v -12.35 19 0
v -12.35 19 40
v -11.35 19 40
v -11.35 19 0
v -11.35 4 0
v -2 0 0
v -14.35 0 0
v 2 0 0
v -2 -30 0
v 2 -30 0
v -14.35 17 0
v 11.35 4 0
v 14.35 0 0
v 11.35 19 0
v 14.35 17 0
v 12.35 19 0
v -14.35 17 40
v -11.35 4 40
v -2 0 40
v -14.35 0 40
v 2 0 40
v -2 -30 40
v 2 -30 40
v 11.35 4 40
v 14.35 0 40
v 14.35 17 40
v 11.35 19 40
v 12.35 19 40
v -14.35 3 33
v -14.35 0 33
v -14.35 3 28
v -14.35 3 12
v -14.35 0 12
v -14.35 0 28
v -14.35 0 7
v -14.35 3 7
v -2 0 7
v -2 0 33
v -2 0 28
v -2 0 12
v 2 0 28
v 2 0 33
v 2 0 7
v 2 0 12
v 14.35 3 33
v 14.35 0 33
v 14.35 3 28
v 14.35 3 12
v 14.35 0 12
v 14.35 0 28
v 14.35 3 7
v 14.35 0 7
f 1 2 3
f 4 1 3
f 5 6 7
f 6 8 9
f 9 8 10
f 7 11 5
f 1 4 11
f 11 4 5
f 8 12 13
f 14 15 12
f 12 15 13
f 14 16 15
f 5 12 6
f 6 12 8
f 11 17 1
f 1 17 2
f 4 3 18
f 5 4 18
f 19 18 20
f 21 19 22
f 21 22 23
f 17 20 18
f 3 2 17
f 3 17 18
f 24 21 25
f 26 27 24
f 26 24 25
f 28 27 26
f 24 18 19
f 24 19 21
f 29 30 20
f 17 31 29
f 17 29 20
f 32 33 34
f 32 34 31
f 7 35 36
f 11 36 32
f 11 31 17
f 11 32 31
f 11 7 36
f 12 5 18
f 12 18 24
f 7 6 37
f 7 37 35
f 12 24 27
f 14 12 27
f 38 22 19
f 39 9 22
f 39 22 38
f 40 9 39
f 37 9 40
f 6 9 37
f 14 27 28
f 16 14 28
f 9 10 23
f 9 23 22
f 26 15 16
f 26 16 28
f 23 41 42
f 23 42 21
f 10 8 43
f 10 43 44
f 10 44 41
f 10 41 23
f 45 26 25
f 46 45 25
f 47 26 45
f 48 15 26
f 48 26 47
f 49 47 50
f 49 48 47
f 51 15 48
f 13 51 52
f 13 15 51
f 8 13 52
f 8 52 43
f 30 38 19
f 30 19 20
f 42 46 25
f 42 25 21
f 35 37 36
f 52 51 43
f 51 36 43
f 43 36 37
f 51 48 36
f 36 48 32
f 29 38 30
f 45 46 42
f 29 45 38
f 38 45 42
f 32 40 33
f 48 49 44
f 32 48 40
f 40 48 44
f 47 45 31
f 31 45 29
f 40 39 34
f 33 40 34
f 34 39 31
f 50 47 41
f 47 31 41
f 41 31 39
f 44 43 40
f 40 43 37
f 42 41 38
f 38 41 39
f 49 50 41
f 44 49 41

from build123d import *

# Parameters (mm, degrees)
PAD_DEPTH    = 40
SKETCH001_W  = 3
SKETCH001_H  = 5
POCKET_DEPTH = 28.701
CHAMFER_SIZE = 2


with BuildPart() as part:
    # Sketch → Pad (new body)
    with BuildSketch(Plane.XY):
        Polygon((-14.35, 19), (-11.35, 19), (-11.35, 4), (11.35, 4), (11.35, 19), (14.35, 19), (14.35, 0), (2, 0), (2, -30), (-2, -30), (-2, 0), (-14.35, 0), align=None)
    extrude(amount=PAD_DEPTH)

    # Sketch001 (on Face6 of Pad) → Pocket (cut, through all)
    with BuildSketch(Plane.YZ.offset(14.35)):
        with Locations((1.5, 30.5)):
            Rectangle(SKETCH001_W, SKETCH001_H)
        with Locations((1.5, 9.5)):
            Rectangle(SKETCH001_W, SKETCH001_H)
    extrude(amount=-POCKET_DEPTH, mode=Mode.SUBTRACT)

    # Chamfer
    chamfer_edges = [part.edges().sort_by_distance(p)[0] for p in [
        (-14.35, 19, 20),
        (14.35, 19, 20),
    ]]
    chamfer(chamfer_edges, length=CHAMFER_SIZE)


solid = part.part
